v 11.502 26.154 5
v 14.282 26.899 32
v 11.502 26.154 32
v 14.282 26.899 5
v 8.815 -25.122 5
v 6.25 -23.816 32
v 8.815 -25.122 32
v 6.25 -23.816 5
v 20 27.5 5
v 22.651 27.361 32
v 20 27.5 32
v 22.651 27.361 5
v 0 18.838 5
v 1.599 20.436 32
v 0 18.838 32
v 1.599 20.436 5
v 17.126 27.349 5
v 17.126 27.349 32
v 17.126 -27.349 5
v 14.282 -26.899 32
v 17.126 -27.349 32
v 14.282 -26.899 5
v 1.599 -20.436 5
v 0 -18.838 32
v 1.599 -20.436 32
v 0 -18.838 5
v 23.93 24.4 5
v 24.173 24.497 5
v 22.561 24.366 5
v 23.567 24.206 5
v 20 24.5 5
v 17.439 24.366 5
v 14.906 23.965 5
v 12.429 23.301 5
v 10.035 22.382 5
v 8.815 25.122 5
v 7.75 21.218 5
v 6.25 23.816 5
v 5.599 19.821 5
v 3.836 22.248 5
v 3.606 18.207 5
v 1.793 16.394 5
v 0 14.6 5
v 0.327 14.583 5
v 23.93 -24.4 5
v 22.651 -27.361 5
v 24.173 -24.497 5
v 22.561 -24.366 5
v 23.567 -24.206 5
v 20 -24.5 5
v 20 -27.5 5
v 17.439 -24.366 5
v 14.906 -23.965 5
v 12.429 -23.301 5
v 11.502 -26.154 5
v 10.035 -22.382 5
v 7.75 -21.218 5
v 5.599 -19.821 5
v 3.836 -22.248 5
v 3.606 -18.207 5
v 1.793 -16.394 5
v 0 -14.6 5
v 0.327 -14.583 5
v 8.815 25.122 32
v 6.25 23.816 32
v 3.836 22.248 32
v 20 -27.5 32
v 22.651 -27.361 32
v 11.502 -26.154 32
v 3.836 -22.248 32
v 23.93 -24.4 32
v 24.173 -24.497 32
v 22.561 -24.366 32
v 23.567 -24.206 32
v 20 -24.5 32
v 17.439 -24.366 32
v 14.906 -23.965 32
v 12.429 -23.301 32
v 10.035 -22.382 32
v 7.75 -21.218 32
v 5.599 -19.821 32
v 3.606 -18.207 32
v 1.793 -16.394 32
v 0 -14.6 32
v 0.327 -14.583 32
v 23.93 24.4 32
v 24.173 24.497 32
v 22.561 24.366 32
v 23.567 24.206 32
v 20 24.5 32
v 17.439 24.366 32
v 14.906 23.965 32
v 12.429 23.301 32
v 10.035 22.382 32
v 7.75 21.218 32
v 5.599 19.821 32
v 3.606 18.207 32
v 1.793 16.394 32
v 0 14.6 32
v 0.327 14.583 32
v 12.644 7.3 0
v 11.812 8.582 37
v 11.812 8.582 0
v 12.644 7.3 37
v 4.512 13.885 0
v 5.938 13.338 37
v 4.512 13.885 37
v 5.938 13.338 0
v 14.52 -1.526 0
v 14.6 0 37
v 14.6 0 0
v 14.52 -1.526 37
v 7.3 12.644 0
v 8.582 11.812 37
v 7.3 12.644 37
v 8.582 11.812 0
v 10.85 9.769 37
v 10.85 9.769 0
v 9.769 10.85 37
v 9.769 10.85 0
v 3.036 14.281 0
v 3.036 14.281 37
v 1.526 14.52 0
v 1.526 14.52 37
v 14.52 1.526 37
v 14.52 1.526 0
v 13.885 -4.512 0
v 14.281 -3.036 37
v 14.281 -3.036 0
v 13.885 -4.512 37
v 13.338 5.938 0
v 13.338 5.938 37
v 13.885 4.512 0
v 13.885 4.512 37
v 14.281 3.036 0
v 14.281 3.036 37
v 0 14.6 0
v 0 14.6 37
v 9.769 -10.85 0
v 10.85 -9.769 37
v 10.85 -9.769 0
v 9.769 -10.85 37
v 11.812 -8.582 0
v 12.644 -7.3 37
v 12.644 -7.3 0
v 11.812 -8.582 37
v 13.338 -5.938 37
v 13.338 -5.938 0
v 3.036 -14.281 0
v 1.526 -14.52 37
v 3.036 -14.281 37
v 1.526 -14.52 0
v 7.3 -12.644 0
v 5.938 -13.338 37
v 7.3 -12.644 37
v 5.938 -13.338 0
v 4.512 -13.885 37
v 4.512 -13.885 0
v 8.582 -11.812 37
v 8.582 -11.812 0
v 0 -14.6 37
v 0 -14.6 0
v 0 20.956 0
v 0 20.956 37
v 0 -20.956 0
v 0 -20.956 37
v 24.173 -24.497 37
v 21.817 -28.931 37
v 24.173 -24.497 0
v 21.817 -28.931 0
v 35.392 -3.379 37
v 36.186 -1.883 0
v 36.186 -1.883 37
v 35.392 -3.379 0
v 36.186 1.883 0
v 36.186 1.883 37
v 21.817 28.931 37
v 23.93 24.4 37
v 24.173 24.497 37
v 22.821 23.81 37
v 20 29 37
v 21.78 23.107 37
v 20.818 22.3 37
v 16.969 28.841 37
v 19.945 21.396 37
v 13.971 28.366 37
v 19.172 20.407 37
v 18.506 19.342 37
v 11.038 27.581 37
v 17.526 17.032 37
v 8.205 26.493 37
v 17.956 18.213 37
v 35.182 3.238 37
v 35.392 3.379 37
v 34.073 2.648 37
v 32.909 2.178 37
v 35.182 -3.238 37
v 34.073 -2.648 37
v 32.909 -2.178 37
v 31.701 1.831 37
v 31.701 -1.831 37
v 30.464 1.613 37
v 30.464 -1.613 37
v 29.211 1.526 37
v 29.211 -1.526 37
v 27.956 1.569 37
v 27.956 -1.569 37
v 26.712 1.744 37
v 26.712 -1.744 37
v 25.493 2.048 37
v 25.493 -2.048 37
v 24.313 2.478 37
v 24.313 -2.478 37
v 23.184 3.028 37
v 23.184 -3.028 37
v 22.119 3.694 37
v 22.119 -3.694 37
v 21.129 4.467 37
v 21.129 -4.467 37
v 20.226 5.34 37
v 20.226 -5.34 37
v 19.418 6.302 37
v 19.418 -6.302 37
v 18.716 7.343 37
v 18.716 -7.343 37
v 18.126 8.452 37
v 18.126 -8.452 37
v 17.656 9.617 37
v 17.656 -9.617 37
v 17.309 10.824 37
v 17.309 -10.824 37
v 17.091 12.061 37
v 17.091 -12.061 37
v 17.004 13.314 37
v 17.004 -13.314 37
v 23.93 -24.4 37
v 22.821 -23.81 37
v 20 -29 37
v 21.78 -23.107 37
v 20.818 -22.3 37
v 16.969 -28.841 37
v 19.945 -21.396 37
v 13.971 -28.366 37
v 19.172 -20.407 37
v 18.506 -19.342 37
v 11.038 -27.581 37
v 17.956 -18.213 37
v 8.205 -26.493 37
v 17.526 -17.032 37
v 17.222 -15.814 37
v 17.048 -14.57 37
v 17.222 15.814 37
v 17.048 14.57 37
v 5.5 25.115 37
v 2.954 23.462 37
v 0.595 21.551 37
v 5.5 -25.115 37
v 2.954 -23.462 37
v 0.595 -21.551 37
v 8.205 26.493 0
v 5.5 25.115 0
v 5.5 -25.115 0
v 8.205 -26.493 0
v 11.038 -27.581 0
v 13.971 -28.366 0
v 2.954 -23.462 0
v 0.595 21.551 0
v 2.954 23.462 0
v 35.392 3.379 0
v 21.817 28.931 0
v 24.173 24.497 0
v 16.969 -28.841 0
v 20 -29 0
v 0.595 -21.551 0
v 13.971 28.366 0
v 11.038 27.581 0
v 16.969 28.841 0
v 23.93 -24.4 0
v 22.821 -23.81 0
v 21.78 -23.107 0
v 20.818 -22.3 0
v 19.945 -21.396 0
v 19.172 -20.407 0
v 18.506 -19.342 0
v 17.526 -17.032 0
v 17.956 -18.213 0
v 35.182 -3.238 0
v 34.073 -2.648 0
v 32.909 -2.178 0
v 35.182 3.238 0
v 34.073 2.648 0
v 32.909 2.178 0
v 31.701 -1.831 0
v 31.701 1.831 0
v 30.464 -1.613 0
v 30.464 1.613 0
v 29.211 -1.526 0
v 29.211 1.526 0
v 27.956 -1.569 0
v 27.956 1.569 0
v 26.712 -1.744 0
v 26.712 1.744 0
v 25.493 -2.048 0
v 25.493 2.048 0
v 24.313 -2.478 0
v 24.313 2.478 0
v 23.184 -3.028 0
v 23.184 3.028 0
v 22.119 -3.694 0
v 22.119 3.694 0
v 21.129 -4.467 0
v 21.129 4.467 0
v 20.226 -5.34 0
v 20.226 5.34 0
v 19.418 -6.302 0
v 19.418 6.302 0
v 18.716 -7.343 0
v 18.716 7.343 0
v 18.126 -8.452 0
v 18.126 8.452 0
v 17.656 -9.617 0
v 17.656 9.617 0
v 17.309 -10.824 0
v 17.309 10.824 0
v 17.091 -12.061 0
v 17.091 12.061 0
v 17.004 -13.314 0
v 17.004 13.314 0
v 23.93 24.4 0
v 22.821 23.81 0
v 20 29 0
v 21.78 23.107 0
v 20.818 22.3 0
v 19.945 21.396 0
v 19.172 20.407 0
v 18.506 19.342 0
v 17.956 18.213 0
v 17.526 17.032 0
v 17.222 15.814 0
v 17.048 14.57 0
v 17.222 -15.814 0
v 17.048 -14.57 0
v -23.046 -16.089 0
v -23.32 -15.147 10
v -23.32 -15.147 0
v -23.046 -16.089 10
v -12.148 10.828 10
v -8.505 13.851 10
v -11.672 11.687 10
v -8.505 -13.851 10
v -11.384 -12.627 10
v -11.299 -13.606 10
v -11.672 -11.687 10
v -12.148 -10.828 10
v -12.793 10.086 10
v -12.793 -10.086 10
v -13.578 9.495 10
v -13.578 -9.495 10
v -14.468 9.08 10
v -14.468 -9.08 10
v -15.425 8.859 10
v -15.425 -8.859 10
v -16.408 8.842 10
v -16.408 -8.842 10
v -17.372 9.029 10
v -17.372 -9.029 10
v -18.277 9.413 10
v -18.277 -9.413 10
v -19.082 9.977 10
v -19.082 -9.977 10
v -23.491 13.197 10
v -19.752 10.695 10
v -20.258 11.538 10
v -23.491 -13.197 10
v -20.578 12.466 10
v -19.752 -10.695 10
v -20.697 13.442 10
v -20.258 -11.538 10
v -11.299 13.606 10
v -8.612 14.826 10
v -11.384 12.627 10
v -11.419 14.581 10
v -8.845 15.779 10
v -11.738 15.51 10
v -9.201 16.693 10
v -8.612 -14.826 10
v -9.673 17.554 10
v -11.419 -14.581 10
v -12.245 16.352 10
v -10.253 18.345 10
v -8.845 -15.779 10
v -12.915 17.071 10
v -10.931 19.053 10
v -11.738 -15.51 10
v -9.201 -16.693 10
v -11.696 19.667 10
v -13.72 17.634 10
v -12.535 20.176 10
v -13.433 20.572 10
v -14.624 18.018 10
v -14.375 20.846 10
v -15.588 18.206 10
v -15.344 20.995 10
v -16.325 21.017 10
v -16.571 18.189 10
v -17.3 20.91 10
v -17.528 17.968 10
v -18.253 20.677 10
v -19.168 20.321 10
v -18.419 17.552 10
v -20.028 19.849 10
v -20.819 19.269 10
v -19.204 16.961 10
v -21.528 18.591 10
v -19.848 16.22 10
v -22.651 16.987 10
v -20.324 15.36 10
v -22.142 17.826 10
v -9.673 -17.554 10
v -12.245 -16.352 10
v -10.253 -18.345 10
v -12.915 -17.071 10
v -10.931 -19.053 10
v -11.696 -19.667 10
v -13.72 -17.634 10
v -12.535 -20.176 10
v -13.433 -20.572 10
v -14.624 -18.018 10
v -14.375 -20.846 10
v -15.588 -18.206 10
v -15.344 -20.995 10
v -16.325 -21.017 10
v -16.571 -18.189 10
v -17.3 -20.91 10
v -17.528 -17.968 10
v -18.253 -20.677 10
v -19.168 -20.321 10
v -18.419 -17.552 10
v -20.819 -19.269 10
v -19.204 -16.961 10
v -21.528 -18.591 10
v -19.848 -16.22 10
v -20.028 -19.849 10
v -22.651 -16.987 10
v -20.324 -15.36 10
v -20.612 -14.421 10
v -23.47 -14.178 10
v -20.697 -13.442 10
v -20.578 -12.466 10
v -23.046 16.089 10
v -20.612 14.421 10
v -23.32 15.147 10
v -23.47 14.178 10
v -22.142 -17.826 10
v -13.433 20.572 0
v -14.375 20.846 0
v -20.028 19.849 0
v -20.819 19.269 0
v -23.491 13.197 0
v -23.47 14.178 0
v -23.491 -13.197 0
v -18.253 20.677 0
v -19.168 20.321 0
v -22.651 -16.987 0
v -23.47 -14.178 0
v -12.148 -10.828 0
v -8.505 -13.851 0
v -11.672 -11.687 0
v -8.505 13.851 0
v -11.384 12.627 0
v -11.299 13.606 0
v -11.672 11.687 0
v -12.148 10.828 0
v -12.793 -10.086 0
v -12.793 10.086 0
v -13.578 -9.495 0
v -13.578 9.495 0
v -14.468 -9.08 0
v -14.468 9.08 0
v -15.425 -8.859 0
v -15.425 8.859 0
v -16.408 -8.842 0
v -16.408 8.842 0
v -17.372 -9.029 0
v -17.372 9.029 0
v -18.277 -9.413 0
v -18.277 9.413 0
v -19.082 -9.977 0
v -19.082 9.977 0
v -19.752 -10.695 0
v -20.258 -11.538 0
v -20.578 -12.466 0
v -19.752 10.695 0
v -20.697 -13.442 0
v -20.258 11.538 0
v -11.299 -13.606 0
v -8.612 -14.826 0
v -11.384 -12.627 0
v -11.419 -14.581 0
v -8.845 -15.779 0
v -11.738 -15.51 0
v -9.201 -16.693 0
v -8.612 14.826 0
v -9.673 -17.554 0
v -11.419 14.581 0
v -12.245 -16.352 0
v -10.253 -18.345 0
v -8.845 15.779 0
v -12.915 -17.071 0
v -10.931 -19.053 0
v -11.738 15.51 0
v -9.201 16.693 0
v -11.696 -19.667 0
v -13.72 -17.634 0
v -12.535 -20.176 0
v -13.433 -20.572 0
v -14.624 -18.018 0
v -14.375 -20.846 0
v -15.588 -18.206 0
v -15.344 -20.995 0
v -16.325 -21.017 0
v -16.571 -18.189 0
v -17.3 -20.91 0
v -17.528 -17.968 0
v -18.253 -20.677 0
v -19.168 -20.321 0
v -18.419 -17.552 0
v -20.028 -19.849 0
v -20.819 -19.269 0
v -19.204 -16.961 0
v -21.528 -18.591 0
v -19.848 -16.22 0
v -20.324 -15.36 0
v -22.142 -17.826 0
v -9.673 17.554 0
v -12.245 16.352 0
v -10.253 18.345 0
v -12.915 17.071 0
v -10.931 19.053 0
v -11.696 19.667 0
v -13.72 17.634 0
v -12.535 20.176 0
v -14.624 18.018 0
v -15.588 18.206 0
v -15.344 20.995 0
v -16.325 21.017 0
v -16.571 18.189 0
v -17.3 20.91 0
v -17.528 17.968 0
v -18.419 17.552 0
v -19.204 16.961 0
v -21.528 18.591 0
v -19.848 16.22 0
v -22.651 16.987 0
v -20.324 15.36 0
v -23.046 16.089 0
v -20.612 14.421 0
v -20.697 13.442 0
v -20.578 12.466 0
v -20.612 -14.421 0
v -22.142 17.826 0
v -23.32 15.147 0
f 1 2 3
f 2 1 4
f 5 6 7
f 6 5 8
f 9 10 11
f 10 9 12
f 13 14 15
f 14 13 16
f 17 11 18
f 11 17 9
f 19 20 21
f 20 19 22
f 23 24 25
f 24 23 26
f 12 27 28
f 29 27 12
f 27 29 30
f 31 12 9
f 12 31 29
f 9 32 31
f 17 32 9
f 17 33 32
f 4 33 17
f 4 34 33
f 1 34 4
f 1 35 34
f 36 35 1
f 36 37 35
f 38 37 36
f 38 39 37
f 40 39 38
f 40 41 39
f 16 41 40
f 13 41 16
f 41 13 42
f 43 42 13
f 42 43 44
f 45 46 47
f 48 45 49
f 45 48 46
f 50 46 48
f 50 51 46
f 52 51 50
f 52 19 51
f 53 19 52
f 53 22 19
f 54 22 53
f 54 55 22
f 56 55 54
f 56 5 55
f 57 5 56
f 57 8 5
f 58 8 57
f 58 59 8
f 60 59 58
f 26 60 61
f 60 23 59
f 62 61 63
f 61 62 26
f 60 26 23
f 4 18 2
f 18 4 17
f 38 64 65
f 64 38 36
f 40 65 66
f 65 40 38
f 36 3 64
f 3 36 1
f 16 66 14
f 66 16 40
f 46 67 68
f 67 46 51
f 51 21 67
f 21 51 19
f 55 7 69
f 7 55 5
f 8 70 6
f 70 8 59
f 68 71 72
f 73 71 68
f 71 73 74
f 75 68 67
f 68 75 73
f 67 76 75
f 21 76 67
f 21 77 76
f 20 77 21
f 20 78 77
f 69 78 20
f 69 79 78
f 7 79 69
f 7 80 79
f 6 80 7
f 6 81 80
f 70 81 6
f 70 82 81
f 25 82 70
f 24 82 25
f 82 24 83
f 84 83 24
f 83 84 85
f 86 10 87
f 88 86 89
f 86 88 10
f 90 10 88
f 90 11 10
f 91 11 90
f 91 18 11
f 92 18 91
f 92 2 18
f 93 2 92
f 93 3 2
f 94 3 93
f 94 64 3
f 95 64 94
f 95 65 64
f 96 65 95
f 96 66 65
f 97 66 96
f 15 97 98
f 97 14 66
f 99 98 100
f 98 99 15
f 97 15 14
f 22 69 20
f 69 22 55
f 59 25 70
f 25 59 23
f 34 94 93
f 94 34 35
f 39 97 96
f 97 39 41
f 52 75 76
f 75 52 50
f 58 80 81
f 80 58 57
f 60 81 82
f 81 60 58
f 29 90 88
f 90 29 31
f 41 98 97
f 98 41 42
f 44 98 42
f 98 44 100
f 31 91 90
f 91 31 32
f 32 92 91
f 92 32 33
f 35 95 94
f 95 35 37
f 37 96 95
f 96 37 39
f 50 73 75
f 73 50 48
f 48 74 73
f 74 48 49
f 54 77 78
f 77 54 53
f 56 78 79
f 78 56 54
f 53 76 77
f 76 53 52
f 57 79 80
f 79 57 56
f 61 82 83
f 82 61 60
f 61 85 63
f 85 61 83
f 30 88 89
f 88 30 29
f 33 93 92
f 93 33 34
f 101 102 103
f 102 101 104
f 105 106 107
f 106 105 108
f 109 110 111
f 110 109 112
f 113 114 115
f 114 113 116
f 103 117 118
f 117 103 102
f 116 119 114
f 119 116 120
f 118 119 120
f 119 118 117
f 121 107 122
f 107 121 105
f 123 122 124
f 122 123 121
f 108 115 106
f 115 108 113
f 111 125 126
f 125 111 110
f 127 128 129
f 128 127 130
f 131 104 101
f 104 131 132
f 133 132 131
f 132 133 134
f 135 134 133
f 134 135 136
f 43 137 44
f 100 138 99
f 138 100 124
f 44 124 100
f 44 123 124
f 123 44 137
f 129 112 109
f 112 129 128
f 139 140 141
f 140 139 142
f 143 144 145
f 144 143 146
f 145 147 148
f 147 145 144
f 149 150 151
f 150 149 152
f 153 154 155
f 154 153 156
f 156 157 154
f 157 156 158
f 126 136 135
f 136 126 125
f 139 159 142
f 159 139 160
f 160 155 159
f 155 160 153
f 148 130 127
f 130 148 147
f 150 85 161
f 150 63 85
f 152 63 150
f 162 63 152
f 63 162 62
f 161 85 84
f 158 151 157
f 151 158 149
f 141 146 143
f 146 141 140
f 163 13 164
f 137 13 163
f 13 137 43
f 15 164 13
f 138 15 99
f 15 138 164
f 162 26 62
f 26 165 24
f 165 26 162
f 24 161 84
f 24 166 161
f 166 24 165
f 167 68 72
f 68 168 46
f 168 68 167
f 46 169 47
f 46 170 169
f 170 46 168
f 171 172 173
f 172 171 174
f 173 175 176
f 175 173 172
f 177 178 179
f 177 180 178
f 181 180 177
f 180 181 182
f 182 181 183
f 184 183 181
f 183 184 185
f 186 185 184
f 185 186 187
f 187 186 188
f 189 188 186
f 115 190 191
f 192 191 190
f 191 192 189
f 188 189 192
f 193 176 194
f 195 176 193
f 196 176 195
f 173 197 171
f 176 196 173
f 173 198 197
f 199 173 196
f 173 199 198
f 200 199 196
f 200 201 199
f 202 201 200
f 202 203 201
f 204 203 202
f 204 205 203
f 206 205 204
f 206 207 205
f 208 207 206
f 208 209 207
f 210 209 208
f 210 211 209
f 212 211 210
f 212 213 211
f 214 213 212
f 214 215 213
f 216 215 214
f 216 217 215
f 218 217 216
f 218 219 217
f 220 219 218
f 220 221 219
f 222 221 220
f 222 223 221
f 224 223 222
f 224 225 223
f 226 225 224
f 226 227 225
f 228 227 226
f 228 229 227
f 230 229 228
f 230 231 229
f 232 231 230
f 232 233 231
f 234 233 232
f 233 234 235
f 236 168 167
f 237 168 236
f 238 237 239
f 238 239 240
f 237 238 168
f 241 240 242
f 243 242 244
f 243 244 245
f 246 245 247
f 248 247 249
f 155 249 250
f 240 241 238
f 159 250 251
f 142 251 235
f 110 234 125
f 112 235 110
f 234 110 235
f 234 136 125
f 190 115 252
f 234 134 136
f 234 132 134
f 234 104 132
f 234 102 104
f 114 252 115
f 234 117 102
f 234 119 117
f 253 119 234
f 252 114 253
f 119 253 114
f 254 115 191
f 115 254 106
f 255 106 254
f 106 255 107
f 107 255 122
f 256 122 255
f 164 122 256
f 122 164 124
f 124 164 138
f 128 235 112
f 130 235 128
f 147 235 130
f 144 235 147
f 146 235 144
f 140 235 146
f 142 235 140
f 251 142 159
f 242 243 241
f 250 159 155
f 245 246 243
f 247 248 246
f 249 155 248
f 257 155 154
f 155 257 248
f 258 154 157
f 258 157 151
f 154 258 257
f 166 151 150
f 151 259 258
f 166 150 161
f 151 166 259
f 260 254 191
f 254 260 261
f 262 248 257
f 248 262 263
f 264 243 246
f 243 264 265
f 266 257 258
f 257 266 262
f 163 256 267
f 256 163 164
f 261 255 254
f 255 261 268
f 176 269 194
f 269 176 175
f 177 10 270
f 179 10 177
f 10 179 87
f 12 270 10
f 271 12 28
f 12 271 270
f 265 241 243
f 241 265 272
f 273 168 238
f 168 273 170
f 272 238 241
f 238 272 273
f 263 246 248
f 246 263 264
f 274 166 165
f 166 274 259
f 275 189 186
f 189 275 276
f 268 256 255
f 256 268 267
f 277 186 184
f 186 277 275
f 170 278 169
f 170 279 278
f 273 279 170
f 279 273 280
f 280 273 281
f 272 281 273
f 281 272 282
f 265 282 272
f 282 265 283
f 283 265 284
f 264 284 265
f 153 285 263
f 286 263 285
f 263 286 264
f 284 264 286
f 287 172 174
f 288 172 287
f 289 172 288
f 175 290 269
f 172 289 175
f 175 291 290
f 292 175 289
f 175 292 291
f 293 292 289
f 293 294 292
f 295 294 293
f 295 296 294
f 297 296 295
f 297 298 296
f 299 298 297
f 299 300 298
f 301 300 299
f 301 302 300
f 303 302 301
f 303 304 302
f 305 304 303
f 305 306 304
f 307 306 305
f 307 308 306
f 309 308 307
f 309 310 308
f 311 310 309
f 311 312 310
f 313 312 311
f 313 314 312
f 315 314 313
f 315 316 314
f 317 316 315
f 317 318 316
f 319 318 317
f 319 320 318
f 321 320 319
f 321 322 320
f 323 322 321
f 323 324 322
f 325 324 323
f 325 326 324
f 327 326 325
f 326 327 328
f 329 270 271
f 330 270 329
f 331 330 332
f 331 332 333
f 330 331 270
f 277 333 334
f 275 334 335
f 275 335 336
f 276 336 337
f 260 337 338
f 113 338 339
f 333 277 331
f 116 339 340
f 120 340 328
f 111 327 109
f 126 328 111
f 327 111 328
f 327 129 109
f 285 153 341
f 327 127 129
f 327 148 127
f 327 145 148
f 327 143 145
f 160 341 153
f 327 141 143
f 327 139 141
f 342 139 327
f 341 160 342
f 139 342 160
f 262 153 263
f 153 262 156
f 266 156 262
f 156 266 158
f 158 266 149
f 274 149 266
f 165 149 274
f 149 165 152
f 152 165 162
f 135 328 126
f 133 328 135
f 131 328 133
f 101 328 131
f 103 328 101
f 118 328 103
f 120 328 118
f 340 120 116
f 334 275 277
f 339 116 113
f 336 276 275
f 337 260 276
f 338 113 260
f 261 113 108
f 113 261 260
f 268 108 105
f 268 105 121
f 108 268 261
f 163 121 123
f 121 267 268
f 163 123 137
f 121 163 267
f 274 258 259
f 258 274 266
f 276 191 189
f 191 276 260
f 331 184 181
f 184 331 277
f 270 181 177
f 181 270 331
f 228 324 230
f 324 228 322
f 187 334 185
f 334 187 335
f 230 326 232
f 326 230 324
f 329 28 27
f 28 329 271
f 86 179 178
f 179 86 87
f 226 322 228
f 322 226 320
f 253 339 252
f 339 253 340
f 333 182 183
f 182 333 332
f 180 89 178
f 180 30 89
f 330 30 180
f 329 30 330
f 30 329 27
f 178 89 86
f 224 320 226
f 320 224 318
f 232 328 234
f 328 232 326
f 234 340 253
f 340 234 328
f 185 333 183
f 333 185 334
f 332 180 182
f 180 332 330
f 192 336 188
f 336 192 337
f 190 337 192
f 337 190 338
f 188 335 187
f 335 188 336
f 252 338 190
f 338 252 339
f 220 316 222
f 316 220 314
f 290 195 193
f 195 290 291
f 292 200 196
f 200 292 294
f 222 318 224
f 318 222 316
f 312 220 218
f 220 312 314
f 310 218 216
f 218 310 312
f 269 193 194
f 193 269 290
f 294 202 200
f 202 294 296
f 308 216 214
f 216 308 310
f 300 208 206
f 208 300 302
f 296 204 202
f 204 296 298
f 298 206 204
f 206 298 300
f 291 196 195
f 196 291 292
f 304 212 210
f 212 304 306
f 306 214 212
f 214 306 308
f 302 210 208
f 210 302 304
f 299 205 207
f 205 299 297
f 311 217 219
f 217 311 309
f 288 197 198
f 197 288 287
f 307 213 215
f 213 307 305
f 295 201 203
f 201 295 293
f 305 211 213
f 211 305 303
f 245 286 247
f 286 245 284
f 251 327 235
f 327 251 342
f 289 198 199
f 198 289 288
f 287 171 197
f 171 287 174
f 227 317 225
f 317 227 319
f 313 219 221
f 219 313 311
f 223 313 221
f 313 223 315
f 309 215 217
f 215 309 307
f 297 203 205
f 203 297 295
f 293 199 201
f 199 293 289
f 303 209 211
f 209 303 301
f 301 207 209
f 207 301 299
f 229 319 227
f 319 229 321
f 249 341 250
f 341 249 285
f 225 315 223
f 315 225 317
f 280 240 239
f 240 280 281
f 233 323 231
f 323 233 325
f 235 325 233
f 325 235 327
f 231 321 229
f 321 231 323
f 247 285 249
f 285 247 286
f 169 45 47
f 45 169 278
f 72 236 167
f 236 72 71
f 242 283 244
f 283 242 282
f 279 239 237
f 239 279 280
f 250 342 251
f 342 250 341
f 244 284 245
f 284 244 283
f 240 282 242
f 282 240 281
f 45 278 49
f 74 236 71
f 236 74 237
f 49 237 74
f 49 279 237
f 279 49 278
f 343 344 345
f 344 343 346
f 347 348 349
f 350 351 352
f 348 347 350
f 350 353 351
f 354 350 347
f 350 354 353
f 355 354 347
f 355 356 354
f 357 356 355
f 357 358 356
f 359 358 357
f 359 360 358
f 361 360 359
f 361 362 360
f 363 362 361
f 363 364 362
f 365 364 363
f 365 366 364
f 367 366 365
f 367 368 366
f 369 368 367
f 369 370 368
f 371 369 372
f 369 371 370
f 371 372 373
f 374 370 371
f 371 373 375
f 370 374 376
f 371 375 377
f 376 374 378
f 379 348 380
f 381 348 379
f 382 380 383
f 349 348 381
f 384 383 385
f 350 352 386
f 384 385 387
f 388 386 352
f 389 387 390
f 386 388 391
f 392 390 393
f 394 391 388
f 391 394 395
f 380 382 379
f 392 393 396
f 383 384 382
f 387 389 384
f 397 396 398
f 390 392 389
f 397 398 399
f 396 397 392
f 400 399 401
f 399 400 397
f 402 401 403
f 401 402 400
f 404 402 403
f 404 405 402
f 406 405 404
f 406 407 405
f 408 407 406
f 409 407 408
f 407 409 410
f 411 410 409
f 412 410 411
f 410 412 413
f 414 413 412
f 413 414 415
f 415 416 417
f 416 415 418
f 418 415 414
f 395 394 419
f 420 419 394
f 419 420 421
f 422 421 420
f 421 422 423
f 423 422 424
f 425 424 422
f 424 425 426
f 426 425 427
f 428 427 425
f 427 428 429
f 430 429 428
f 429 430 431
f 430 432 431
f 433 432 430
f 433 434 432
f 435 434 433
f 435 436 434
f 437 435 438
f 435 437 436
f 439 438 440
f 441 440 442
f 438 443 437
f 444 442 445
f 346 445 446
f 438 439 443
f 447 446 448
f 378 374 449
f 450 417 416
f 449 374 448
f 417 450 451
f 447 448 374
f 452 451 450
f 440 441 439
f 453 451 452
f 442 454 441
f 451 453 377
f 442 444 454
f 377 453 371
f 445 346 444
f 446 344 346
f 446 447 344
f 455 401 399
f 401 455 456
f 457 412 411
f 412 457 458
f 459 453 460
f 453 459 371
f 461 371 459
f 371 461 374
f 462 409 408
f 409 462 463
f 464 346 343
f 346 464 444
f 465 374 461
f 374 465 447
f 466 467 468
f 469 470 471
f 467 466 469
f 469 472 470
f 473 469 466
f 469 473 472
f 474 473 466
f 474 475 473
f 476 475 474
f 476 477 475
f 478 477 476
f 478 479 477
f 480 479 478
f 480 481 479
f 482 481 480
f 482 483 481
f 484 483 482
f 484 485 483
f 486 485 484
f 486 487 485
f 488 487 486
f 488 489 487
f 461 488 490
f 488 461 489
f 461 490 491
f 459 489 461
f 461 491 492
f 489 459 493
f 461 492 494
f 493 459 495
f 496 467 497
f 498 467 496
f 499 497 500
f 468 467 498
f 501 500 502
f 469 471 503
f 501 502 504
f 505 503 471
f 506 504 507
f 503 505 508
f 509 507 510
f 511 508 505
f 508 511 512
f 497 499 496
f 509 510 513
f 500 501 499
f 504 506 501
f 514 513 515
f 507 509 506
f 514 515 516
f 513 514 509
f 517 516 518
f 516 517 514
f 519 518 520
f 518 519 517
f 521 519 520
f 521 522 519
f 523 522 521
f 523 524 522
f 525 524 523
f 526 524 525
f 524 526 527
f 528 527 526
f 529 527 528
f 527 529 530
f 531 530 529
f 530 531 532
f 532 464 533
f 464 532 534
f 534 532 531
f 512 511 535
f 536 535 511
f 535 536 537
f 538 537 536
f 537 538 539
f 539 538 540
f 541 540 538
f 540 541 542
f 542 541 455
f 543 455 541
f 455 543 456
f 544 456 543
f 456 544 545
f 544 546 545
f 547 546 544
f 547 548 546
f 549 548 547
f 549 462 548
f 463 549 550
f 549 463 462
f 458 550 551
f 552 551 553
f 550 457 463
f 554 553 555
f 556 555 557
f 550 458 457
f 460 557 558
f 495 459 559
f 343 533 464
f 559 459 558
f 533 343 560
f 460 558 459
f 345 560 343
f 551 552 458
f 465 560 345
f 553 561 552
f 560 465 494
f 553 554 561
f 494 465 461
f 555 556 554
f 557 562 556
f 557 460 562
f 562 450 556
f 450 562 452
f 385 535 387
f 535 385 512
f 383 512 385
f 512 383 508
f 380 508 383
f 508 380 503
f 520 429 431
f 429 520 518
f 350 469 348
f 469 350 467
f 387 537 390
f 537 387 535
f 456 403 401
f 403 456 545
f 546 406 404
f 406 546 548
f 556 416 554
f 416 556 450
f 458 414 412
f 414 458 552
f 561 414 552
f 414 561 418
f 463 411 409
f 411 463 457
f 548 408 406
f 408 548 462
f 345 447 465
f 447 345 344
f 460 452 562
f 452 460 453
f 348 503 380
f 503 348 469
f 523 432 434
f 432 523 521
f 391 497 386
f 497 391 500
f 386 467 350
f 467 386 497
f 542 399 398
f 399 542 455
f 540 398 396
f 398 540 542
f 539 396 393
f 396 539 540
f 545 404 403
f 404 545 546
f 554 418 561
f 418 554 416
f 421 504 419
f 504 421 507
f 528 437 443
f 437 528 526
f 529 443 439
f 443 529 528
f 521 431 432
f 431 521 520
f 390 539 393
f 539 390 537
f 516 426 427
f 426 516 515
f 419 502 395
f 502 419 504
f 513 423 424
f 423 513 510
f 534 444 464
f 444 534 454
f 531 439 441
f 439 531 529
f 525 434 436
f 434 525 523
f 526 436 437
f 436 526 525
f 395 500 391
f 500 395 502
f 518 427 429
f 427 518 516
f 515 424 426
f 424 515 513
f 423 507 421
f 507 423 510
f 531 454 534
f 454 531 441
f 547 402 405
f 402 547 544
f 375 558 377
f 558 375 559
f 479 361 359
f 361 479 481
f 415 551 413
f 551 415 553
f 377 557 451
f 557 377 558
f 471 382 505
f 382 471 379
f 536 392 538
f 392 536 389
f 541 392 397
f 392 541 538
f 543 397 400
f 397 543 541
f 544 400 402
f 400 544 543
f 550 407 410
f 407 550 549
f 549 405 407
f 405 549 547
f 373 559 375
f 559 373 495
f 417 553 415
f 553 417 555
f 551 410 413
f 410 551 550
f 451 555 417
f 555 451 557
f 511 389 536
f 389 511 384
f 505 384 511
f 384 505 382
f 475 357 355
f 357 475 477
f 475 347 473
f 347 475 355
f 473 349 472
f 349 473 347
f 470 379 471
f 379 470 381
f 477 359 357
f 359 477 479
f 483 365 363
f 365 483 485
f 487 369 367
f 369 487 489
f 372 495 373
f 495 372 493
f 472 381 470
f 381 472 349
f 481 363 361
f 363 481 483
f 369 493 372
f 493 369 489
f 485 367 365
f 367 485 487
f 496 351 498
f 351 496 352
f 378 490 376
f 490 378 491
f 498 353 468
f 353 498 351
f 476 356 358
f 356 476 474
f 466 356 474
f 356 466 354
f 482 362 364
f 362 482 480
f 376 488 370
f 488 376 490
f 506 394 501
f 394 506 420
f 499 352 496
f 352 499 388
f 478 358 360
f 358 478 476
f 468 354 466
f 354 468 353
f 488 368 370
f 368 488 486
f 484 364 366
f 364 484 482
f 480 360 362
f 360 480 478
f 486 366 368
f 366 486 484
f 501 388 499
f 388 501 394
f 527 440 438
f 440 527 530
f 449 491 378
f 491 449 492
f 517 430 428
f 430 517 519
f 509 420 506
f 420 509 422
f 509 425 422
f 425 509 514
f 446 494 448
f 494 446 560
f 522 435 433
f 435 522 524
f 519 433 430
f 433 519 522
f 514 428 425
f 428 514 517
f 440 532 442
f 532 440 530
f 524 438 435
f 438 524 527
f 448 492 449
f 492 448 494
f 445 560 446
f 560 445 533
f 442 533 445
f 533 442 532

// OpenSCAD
$fs = 1;
$fa = 6;

module _ry() {
    rotate([90,0]) children();
}
module _rx() {
    rotate([0,90]) children();
}

module cartridge(inflate=0, h=75) {
  cylinder(d=24+inflate, h=h, center=true);
}
module halfCartridge(inflate=0, h=75) {
  intersection() {
    cartridge(inflate, h);
    translate([-50,0,0]) cube(size=[100, 100, 100], center=true);
  }
}
module seatpost(inflate=0, h=1000) {
  intersection() {
    cylinder(d=29.2+inflate, h=h, center=true);
    translate([50,0,0]) cube(size=[100, 100, 100], center=true);
  }
}

module strap(inflate=0, h=27) {
  d=55+inflate;
  translate([20,0,0]) difference() {
    cylinder(d=d, h=h, center=true);
    cylinder(d=d-6, h=100, center=true);
  }
}

module rot(direction=1) {
  rotate([0,0,25 * direction]) translate([32, 0, 0]) children();
}

hgt = 37;
translate([0,0,hgt/2]) difference() {
  hull() {
    seatpost(inflate=12, h=hgt);
    rot() halfCartridge(inflate=10, h=hgt);
    rot(-1) halfCartridge(inflate=10, h=hgt);
    intersection() {
      strap(3, hgt);
      translate([21/2,0,0]) cube(size=[21, 100, 100], center=true);
    }
  }
  strap();
  seatpost();
  rot() cartridge(inflate=0);
  rot(-1) cartridge(inflate=0);
}

translate([-45, 0, 10/2]) {
  difference() {
    hull() {
      rot() cylinder(d=15, h=10, center=true);
      rot(-1) cylinder(d=15, h=10, center=true);
    }
    rot() cylinder(d=9.4, h=100, center=true);
    rot(-1) cylinder(d=9.4, h=100, center=true);
  }
}
